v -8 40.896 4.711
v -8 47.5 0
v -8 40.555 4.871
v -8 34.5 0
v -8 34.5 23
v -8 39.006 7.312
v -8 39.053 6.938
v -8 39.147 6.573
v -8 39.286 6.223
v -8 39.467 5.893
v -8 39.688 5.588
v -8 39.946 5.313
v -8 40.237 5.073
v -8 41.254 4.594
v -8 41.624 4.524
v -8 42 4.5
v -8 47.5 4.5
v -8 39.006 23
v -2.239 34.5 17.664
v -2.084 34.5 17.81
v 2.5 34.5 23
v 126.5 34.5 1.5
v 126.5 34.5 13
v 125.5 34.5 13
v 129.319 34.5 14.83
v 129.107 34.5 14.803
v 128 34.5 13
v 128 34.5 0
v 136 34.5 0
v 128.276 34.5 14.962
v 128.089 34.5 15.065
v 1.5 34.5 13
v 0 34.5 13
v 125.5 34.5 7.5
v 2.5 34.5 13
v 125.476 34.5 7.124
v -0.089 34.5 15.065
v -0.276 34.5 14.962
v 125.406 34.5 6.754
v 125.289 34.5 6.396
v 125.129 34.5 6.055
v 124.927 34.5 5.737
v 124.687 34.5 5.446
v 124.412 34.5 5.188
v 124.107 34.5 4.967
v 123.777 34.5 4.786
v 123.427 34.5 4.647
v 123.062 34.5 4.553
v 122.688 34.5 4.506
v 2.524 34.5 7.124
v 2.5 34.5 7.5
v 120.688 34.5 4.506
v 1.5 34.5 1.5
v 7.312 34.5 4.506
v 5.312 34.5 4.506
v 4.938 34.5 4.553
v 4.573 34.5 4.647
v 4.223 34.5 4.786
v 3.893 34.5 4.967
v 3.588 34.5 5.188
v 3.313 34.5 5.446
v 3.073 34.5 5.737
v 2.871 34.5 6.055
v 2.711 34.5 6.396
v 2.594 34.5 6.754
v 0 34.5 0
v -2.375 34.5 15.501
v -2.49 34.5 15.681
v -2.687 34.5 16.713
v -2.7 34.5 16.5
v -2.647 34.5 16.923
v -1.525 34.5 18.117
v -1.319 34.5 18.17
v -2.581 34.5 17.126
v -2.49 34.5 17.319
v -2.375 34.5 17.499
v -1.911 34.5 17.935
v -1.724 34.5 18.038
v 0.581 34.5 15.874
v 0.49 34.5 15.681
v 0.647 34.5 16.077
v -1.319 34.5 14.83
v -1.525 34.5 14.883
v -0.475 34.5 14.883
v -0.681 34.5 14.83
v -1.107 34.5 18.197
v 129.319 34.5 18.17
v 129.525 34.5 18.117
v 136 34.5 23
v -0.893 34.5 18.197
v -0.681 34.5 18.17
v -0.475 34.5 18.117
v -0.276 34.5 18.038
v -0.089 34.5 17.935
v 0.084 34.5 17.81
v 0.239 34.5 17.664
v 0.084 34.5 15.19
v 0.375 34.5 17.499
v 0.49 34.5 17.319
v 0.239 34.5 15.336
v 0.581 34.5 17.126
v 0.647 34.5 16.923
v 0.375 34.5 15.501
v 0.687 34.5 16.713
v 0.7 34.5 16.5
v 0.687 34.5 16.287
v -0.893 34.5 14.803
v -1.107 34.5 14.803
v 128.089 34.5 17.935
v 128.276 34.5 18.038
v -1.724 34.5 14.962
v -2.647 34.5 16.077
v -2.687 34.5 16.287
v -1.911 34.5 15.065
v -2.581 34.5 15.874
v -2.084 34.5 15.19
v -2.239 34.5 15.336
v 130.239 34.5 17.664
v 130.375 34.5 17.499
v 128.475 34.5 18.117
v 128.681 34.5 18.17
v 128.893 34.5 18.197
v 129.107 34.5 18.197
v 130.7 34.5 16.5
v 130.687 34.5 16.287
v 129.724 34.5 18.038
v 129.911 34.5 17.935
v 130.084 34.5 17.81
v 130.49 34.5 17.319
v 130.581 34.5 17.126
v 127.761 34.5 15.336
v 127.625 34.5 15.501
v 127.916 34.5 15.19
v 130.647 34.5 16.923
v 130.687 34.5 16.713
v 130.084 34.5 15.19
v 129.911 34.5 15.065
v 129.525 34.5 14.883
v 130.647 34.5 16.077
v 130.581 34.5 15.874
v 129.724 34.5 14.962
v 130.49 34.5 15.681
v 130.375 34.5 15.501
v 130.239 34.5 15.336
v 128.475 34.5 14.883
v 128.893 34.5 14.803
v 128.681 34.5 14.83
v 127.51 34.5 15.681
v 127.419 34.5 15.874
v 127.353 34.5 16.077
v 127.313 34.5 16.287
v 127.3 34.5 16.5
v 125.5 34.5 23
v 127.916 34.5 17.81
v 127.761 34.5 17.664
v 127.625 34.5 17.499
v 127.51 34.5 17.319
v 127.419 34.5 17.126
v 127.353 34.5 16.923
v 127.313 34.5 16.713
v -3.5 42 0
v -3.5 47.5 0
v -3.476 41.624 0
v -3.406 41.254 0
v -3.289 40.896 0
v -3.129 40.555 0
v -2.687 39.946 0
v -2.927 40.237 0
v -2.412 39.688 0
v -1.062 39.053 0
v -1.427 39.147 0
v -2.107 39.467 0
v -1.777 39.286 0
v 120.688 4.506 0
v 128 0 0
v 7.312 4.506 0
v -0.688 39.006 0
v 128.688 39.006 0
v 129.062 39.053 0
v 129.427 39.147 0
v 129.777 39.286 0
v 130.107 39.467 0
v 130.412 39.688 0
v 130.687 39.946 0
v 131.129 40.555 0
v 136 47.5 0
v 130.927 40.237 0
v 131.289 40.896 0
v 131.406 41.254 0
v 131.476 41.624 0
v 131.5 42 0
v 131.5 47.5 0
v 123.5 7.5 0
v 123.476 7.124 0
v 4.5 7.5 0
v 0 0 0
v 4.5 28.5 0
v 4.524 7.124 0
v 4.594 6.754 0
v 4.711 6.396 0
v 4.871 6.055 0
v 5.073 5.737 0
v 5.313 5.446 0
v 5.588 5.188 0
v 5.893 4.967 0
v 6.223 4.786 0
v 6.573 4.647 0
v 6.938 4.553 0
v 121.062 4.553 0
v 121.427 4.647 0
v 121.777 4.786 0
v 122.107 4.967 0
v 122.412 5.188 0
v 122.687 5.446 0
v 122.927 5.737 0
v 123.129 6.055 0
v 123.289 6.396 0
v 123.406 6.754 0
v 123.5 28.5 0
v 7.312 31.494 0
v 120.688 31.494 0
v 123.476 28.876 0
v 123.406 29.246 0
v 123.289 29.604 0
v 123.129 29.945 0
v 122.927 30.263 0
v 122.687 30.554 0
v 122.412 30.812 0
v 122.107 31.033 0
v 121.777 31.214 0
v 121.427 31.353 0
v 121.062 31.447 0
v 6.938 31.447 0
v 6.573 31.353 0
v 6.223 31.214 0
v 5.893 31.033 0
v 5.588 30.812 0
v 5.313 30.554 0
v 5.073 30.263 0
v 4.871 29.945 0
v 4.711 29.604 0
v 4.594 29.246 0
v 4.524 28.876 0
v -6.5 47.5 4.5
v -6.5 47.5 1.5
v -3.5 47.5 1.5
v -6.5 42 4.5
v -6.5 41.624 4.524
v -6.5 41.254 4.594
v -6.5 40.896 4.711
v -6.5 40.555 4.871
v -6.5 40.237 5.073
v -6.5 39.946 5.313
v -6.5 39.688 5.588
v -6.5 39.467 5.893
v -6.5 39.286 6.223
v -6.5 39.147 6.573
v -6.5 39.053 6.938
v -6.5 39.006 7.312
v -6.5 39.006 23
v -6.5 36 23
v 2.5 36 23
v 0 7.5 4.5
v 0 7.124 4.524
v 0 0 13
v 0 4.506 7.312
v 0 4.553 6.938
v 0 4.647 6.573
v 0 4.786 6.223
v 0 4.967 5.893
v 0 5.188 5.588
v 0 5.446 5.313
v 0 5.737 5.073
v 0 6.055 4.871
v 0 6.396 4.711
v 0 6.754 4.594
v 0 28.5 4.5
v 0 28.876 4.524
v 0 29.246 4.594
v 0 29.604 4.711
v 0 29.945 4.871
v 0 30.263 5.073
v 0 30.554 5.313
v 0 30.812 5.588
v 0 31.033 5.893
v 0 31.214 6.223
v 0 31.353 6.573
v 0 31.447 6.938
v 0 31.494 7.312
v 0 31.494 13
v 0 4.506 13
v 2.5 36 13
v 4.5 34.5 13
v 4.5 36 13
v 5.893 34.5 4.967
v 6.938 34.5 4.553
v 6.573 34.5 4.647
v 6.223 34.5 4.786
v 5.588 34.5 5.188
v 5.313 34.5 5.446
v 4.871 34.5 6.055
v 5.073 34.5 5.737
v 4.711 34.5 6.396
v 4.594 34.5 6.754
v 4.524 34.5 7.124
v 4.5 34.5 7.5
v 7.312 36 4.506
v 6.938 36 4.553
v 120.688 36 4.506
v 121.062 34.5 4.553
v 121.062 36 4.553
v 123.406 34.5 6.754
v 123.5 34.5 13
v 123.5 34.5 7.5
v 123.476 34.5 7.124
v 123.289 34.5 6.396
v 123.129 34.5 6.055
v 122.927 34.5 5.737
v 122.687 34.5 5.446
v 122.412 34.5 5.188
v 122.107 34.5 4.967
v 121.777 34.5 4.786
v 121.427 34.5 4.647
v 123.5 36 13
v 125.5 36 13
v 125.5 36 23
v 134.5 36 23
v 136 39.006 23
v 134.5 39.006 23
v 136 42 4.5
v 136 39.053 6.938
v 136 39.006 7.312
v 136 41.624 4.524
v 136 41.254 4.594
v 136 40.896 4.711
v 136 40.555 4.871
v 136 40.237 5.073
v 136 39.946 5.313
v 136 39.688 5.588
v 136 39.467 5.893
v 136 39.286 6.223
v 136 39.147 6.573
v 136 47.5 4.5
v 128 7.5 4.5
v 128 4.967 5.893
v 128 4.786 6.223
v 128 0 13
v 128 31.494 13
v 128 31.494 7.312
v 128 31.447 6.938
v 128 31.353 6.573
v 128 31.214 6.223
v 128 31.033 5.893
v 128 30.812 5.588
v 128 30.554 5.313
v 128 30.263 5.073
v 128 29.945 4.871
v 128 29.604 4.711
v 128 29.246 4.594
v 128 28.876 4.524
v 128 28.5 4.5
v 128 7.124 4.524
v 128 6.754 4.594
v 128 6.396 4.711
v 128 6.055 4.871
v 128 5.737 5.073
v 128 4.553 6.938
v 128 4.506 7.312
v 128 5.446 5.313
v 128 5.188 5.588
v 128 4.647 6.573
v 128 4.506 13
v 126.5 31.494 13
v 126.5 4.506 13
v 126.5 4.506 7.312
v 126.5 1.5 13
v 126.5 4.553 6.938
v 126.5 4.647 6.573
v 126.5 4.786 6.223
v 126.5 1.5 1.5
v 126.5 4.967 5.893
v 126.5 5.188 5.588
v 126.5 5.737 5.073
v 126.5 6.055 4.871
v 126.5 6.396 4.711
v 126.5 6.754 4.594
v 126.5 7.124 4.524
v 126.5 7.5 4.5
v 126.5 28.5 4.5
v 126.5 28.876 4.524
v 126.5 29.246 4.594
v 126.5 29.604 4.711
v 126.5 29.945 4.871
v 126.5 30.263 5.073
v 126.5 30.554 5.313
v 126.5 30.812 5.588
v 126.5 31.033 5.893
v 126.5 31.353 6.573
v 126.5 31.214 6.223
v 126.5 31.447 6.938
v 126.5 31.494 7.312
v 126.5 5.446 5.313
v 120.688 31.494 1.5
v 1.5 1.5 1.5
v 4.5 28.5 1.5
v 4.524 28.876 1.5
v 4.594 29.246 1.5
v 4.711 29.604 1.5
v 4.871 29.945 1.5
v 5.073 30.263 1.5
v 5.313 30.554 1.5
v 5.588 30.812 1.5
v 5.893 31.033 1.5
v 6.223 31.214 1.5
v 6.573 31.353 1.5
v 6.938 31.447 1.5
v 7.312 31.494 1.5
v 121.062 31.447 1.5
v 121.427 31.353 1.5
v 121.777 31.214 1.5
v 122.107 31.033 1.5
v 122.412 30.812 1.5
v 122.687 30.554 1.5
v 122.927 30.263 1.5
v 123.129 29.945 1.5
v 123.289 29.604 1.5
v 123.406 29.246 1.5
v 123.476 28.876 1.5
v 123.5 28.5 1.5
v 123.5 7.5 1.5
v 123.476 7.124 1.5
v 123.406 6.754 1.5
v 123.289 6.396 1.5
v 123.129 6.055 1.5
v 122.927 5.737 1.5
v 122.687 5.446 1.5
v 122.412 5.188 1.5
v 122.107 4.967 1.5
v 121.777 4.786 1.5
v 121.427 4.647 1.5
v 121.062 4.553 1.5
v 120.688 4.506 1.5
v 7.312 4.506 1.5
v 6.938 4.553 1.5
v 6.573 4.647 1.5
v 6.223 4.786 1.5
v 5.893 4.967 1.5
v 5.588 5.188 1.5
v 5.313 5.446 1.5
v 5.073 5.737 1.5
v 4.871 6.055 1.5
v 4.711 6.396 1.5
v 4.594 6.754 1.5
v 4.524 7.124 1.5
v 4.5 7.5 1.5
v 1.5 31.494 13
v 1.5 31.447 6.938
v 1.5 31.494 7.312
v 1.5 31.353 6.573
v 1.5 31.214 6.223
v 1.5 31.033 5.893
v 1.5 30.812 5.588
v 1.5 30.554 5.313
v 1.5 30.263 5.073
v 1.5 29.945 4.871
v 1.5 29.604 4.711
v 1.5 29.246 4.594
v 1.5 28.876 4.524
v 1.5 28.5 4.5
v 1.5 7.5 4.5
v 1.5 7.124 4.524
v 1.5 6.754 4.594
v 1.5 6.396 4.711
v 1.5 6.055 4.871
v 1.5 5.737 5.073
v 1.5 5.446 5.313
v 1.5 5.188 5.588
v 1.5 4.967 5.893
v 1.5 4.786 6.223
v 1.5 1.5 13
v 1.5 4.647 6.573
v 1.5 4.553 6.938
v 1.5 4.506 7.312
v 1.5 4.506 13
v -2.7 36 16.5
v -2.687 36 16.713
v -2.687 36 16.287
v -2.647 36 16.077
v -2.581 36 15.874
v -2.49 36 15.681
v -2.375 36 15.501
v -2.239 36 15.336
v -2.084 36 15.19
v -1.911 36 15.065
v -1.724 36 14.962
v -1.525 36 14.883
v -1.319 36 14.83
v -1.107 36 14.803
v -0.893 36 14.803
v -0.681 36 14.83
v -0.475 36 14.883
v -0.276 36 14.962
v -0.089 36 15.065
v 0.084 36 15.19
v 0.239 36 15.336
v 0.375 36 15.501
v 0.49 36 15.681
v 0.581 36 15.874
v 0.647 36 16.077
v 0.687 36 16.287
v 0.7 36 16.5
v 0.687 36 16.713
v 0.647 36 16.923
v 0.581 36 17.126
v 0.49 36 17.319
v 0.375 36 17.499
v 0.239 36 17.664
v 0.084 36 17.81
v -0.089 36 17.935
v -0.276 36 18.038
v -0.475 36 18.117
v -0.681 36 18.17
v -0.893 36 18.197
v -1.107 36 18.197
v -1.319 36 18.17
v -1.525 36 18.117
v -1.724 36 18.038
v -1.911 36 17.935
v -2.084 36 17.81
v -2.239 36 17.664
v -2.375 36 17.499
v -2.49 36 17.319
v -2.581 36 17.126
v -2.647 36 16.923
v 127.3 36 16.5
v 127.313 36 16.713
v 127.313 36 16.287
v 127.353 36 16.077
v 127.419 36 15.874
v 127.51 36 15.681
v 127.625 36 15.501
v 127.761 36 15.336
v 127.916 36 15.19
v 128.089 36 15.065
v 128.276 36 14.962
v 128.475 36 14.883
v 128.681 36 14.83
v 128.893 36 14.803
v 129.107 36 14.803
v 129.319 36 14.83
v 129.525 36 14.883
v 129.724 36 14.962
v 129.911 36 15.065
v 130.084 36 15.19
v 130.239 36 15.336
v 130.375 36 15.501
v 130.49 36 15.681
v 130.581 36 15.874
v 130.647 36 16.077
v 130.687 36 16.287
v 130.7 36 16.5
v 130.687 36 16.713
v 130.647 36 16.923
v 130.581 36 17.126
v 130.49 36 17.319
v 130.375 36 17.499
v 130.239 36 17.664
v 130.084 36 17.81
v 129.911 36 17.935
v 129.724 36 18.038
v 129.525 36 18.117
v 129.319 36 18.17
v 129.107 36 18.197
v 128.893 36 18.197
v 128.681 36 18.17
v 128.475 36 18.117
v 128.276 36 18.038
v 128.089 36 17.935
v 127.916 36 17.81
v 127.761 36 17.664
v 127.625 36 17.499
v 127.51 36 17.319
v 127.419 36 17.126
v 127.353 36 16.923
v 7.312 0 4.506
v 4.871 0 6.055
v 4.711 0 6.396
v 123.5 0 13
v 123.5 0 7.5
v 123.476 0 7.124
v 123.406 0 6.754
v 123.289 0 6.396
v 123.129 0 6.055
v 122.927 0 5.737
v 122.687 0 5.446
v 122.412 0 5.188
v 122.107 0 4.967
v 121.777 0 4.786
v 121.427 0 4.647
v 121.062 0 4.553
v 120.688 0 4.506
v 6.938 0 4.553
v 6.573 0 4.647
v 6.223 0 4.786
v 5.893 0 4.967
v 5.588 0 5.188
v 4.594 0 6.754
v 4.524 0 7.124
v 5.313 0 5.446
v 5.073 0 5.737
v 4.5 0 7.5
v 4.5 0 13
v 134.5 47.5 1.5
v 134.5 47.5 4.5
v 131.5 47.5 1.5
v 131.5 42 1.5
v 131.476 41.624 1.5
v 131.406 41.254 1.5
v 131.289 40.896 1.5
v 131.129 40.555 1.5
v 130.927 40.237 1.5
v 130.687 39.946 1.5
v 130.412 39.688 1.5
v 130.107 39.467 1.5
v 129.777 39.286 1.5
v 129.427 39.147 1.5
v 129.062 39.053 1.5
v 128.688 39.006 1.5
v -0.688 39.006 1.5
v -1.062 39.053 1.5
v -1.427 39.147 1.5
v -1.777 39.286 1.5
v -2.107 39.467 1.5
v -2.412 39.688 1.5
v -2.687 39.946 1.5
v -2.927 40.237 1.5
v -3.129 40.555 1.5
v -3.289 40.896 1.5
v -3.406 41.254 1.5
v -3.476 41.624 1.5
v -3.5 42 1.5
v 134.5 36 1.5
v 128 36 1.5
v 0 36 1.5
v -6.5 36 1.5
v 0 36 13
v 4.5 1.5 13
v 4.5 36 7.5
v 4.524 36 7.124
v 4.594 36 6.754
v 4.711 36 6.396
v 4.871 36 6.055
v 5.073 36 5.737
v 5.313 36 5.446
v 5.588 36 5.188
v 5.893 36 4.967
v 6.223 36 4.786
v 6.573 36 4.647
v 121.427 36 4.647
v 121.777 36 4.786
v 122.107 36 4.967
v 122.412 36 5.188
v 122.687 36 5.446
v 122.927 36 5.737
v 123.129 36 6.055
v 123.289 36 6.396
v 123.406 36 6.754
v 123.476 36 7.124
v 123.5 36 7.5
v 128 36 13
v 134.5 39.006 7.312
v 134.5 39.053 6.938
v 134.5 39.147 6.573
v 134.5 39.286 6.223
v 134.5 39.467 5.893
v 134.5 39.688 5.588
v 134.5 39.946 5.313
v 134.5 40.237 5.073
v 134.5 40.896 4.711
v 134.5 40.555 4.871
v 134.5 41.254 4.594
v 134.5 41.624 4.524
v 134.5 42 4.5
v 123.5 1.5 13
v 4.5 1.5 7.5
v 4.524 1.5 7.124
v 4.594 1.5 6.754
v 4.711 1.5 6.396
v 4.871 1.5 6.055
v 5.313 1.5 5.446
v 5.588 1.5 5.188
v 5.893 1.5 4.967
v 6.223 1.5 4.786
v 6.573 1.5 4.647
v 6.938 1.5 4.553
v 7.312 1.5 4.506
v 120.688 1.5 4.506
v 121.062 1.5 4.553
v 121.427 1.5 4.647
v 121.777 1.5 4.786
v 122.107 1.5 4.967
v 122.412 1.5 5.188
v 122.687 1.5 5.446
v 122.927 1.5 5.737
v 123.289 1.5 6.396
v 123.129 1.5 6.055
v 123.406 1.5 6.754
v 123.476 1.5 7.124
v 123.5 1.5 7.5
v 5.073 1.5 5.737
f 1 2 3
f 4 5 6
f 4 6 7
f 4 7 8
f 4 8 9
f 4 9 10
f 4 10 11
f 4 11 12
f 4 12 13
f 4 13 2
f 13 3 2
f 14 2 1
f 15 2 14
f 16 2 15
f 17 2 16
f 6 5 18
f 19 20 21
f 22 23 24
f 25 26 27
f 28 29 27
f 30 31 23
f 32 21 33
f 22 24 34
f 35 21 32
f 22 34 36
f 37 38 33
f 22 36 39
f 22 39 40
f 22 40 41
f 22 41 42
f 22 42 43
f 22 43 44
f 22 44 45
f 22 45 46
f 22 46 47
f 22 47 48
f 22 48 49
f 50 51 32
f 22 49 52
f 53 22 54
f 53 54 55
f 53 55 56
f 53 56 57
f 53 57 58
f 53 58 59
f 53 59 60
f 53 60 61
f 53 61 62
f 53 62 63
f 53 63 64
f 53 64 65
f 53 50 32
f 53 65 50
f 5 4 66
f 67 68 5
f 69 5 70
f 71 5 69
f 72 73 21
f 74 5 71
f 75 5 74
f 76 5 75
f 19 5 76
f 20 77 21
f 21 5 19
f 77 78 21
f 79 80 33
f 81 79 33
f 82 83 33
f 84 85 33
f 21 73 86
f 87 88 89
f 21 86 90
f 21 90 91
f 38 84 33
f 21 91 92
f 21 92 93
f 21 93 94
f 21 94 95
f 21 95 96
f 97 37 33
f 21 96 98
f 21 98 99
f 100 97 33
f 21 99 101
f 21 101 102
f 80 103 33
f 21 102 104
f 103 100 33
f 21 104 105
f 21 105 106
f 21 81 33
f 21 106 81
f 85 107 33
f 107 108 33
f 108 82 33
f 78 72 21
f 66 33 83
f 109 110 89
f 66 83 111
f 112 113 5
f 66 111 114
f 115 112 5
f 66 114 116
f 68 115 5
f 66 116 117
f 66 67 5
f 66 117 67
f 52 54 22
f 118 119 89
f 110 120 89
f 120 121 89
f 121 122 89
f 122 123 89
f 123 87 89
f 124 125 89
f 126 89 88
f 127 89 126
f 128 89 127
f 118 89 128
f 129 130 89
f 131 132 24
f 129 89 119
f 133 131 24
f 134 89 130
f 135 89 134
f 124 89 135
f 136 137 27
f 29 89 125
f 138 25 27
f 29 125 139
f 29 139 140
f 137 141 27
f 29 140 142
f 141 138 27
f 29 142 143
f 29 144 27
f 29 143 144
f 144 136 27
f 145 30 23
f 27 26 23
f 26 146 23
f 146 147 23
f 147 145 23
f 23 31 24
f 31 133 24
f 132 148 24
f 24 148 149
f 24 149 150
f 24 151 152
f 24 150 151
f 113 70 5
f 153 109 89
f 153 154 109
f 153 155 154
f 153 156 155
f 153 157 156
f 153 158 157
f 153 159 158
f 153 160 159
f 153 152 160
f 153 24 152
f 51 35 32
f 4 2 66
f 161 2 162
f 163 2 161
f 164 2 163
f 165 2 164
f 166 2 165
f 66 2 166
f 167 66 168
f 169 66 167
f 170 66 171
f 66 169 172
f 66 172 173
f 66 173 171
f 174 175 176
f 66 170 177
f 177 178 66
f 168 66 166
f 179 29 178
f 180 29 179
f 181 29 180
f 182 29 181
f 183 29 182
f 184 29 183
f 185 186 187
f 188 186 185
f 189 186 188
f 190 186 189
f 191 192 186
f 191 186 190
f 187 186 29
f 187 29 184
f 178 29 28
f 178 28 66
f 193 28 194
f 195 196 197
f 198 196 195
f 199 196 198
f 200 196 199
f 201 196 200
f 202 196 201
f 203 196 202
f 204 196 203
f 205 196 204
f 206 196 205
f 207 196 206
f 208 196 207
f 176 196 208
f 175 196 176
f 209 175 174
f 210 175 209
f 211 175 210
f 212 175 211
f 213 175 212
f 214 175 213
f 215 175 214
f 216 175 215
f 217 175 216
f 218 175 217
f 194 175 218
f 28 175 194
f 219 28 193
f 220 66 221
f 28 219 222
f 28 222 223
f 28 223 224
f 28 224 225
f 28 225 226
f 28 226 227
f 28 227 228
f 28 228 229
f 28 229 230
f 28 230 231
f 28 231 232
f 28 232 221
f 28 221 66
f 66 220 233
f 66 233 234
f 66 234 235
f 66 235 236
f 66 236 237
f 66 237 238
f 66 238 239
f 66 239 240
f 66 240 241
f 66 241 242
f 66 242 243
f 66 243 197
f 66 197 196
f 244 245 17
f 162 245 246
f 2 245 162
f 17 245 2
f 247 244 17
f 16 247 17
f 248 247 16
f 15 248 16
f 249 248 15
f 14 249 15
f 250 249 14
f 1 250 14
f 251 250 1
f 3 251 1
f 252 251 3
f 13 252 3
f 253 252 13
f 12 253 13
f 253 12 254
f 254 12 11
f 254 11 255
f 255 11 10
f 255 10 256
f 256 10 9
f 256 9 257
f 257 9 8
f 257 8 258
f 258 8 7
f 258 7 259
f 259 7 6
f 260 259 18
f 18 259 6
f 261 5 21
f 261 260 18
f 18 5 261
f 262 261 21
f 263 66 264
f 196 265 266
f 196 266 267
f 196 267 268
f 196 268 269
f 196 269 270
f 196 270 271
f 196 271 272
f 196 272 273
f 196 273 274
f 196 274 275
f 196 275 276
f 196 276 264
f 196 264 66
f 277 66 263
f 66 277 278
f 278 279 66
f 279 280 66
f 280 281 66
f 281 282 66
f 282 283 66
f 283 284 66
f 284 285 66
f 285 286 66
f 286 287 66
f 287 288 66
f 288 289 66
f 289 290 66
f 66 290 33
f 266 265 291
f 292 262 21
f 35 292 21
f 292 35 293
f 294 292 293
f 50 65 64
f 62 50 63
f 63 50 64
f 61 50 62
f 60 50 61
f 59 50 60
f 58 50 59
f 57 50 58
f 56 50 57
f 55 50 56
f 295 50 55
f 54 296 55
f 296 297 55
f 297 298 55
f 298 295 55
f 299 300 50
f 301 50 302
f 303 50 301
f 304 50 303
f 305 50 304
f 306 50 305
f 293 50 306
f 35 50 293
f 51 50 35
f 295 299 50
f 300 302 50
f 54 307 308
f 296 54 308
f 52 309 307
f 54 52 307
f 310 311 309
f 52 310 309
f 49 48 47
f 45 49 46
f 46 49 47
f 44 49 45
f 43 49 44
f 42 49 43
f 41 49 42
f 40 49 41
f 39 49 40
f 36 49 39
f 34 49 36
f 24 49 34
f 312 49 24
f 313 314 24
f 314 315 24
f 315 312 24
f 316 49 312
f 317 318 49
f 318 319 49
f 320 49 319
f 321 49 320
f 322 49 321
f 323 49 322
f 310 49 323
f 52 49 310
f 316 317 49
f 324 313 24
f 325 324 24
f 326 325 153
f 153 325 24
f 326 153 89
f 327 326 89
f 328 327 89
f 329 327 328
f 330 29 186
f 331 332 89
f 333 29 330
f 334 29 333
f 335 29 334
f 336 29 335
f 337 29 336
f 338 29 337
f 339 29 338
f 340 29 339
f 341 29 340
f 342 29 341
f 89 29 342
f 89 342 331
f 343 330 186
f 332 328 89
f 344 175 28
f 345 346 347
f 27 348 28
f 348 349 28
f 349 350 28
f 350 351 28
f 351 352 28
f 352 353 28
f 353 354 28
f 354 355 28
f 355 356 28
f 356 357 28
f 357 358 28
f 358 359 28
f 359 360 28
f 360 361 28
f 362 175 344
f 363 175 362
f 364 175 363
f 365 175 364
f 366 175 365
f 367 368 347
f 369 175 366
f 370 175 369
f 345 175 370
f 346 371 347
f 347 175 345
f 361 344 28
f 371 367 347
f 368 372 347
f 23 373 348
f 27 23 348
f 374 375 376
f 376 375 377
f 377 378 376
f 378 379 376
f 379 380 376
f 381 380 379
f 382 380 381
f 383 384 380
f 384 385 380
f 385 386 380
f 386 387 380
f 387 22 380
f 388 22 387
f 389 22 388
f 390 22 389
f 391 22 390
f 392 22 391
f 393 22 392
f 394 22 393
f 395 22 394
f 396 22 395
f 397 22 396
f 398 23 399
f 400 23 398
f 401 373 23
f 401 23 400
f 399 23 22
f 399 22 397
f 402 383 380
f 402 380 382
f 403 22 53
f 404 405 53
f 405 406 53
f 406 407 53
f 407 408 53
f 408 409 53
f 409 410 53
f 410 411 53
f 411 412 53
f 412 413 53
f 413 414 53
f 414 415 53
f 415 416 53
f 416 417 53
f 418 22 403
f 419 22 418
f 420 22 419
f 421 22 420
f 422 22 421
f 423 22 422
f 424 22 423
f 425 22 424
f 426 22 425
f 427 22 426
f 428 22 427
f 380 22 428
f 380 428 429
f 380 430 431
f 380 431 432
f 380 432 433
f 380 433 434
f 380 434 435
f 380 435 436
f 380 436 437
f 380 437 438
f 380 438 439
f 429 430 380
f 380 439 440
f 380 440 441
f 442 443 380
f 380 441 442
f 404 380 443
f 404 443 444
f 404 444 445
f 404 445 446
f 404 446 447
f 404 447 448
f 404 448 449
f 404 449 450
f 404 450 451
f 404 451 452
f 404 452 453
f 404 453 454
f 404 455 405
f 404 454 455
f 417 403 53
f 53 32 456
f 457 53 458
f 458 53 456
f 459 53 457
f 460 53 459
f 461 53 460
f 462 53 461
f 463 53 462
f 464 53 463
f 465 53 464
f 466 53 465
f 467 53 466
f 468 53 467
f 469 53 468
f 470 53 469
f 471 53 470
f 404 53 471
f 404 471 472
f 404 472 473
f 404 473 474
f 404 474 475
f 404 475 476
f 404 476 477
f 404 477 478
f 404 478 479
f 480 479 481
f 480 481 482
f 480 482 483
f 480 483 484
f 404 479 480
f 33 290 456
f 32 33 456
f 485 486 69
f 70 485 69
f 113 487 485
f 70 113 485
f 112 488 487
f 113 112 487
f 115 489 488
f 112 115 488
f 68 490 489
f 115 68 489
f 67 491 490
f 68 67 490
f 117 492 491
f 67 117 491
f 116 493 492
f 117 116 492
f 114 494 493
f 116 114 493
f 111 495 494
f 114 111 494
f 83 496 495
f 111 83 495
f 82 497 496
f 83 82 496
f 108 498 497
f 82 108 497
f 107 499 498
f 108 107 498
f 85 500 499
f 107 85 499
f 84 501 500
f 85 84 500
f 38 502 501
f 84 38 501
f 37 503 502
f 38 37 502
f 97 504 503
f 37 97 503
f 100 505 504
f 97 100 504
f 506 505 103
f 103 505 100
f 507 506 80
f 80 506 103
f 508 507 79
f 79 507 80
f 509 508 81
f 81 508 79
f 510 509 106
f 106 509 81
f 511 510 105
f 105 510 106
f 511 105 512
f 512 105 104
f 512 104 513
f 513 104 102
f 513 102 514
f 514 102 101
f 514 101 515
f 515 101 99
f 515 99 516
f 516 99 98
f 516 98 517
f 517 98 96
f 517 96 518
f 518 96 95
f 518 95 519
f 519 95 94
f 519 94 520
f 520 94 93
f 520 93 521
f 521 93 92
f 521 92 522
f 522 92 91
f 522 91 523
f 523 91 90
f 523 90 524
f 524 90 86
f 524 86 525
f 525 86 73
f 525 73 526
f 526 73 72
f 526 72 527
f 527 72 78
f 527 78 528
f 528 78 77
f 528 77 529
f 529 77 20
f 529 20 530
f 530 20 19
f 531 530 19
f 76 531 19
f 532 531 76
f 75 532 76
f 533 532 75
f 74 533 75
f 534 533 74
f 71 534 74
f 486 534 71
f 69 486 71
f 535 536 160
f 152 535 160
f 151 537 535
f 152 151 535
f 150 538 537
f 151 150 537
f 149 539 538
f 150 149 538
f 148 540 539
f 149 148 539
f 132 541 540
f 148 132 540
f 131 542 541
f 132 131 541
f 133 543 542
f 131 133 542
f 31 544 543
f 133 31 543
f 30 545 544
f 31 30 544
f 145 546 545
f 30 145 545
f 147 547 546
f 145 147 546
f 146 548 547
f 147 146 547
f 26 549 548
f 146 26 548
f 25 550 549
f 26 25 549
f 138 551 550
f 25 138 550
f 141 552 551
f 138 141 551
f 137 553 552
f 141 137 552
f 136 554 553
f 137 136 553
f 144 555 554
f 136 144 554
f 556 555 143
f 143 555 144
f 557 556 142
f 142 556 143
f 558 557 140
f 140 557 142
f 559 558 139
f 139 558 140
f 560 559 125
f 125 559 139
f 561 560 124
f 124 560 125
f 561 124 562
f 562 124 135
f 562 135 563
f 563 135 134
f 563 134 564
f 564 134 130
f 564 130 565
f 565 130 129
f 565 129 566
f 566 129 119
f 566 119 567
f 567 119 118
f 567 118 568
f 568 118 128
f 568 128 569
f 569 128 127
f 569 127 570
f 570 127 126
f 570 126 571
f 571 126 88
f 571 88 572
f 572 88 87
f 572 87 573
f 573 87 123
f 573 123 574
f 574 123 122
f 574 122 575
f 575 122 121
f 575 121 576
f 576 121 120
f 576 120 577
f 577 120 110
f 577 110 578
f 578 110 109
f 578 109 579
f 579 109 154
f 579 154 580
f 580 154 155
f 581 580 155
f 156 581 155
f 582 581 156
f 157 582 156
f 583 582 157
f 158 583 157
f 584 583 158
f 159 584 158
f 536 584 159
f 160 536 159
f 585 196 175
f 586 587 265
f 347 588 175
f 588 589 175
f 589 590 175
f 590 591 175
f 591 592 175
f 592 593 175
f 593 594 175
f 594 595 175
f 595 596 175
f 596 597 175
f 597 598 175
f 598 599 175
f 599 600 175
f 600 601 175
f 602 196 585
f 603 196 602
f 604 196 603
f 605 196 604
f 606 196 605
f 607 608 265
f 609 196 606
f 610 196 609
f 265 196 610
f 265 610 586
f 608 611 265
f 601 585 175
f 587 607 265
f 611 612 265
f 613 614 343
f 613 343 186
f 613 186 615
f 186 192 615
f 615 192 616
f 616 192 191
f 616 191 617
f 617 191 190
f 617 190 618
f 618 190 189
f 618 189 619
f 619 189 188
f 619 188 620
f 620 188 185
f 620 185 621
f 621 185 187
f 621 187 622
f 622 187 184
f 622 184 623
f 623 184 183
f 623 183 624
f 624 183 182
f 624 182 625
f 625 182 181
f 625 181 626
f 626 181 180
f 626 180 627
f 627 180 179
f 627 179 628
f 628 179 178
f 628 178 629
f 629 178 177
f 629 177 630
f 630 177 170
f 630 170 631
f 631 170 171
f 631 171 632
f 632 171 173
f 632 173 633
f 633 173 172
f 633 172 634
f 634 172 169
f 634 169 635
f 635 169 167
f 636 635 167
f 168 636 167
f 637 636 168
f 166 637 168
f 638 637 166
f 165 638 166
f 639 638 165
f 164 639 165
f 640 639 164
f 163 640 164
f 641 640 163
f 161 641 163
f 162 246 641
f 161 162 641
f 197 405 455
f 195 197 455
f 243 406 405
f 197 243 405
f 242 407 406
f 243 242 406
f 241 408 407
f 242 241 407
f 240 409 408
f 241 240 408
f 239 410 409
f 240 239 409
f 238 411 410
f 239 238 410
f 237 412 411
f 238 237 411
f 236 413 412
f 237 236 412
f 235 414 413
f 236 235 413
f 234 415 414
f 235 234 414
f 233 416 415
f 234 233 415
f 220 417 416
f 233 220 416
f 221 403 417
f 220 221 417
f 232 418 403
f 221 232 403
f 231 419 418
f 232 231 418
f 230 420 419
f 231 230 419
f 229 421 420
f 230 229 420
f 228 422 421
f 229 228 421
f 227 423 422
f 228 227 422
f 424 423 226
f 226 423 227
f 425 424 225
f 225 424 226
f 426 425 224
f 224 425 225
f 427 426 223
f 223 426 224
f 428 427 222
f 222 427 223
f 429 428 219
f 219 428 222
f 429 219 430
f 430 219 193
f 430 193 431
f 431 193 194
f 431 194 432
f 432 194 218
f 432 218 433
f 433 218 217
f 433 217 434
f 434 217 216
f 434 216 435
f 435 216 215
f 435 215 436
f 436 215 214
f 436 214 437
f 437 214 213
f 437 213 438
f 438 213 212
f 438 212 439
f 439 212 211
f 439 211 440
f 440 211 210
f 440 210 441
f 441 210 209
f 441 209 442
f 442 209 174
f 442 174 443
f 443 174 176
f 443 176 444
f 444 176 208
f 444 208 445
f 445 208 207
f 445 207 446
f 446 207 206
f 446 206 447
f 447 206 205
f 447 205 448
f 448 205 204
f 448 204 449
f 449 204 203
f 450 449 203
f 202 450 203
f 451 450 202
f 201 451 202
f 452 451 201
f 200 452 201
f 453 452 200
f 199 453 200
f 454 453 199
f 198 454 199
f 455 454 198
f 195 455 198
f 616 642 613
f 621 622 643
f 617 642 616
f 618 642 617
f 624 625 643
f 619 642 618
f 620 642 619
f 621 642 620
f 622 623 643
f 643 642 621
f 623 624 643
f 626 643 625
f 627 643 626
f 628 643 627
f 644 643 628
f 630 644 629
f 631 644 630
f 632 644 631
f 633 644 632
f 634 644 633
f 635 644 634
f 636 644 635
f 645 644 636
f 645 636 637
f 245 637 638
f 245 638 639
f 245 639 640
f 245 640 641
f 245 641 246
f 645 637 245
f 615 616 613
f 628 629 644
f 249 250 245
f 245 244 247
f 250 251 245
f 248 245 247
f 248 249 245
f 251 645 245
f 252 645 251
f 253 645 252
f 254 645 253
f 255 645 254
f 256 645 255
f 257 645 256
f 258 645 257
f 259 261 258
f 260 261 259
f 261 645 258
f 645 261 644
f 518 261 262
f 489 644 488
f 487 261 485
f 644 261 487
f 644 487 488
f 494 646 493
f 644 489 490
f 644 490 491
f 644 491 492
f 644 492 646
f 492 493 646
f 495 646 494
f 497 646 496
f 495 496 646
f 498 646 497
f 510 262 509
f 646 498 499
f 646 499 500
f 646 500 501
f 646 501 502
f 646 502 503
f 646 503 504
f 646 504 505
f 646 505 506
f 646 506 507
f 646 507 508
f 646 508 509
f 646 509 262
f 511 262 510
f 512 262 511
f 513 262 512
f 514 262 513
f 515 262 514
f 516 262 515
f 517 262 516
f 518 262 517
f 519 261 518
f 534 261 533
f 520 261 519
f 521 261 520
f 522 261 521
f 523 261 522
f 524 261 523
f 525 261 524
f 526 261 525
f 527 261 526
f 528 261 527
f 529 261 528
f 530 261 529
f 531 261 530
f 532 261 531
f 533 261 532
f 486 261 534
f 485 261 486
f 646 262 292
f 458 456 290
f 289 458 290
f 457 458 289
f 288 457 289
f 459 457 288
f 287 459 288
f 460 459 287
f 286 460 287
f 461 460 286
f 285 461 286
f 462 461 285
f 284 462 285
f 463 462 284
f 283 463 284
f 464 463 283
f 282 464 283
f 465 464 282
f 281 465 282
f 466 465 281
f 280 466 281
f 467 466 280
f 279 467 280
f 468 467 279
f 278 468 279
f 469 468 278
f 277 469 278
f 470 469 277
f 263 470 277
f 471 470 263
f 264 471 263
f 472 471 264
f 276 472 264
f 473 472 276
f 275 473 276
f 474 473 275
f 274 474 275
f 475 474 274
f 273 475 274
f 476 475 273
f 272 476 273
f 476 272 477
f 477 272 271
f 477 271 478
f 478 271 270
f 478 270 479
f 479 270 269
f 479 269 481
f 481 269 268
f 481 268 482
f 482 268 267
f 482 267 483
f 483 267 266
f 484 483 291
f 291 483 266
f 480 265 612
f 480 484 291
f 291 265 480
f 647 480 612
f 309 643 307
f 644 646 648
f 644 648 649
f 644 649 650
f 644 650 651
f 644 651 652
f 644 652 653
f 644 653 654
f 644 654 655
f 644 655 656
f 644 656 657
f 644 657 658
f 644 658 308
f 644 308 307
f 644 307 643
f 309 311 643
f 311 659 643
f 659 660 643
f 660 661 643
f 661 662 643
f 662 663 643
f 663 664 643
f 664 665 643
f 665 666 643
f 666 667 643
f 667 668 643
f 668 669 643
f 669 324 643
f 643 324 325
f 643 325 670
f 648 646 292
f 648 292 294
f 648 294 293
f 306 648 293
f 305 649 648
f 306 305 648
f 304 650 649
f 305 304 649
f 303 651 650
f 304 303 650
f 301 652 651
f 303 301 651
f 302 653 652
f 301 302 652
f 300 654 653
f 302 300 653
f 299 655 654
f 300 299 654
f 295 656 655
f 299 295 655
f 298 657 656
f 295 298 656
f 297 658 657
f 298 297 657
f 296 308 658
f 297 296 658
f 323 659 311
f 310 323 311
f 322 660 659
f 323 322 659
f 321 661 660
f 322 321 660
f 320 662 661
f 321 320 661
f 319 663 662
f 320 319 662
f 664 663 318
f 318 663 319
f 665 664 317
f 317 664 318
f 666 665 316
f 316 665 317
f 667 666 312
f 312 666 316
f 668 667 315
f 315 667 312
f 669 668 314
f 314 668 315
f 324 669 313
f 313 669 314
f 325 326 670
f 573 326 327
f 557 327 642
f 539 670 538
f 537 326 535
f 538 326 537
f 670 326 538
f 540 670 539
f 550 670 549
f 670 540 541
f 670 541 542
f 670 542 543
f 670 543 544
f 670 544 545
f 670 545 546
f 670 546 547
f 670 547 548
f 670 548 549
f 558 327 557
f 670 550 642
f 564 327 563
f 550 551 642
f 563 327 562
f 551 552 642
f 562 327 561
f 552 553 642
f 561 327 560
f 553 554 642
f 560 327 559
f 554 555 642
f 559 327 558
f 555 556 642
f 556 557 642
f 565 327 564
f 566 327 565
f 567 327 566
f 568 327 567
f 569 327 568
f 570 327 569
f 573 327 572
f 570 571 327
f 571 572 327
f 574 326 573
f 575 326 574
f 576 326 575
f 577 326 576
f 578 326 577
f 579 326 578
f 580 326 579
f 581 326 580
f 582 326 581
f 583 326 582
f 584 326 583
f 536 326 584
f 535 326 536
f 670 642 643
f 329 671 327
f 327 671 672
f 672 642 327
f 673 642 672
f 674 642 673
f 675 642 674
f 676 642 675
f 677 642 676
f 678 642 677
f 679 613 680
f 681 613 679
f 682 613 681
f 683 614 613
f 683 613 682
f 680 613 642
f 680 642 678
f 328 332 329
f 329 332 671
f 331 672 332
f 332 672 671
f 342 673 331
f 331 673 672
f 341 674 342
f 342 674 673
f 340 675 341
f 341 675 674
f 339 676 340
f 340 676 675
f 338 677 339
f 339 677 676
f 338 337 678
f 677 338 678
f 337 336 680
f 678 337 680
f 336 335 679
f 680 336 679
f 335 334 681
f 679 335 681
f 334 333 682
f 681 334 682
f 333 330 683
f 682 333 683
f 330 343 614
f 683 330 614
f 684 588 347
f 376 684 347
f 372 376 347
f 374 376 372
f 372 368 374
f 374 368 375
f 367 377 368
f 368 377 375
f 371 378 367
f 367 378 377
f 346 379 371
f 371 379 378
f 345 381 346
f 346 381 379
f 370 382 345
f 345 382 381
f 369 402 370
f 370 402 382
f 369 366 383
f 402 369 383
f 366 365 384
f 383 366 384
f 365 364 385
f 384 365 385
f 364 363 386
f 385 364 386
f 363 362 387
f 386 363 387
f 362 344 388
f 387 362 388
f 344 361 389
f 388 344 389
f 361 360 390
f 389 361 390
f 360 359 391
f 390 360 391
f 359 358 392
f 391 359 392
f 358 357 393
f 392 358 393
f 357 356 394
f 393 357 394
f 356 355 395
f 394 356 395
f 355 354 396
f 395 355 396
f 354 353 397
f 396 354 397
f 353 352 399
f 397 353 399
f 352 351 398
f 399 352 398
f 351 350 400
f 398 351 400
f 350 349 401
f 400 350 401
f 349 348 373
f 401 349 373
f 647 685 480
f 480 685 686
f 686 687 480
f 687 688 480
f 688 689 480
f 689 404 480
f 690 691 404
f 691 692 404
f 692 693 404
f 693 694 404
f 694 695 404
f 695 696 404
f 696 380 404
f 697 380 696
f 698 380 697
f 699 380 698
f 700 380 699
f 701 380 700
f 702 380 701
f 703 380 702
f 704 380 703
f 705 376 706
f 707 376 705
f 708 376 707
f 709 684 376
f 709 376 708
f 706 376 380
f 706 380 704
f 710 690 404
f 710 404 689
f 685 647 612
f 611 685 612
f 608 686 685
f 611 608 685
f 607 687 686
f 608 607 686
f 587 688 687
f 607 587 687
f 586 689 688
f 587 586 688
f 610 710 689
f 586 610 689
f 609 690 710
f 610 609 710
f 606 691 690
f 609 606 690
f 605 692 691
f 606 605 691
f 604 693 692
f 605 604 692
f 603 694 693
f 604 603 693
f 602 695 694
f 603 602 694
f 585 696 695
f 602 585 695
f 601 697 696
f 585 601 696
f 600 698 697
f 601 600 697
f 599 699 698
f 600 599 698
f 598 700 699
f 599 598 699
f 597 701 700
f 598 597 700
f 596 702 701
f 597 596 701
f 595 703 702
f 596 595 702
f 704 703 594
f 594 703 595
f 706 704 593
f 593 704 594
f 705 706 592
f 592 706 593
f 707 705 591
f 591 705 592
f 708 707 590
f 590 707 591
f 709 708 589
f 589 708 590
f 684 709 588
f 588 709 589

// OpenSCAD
Dl = 125;
Db = 33;
Dh = 10;

Nl = 141;
Nb = 20;
Nh = 20;
NWr = 3;
NWb = 9;

d = 1.5;

Wb = 3;
Wr = 3;

$fn = 50;

module frame(l, b, h, Wb, Wr, d)
{
	difference(){
		cube([l+2*d,b+2*d,h+2*d]);
		translate([d,d,d])cube([l,b,h+4*d]);
	
		rotate([90,0,0])
		translate([Wb+Wr+d,Wb+Wr+d,-4*d-b]){
			minkowski(){
				cube([l-2*(Wb+Wr),max(l,b,h)+4*d+2*Wr,l+8*d]);
				cylinder(r=Wr,h=1);
			}
		}
	
		rotate([0,-90,0])
		translate([Wb+Wr+d,Wb+Wr+d,-4*d-l]){
			minkowski(){
				cube([max(l,b,h)+4*d+2*Wr,b-2*(Wb+Wr),l+8*d]);
				cylinder(r=Wr,h=1);
			}
		}
	
		translate([Wb+Wr+d,Wb+Wr+d,-4*d]){
			minkowski(){
				cube([l-2*(Wb+Wr),b-2*(Wb+Wr),h+8*d]);
				cylinder(r=Wr,h=1);
			}
		}
	}
}

module frame2(l, b, h, Wl, Wb, Wr, d, rl, xl, yl)
{
	difference(){
		cube([l+2*d,b+2*d,h+2*d]);
		translate([d,d,d])cube([l,b,h+4*d]);
	
		rotate([90,0,0]){
			translate([Wl+Wr+d,Wb+Wr+d,-4*d-b]){
				minkowski(){
					cube([l-2*(Wl+Wr),max(l,b,h)+4*d+2*Wr,l+8*d]);
					cylinder(r=Wr,h=1);
				}
			}
			translate([xl,yl,-2*d])cylinder(r=rl, h=3*d);
			translate([l+2*d-xl,yl,-2*d])cylinder(r=rl, h=3*d);
		}
		rotate([0,-90,0]){
			translate([Wb+Wr+d,Wb+Wr+d,-4*d-l]){
				minkowski(){
					cube([max(l,b,h)+4*d+2*Wr,b-2*(Wb+Wr),l+8*d]);
					cylinder(r=Wr,h=1);
				}
			}
		}
		translate([Wb+Wr+d,Wb+Wr+d,-4*d]){
			minkowski(){
				cube([l-2*(Wb+Wr),b-2*(Wb+Wr),h+8*d]);
				cylinder(r=Wr,h=1);
			}
		}
	}
}

frame(Dl, Db, Dh, Wb, Wr, d);
difference(){
	translate([(Dl-Nl)/2,Db+d,0]) frame2(Nl, Nb, Nh, NWb, Wb, NWr, d, 1.7,5.5+d,15+d);
	translate([(Dl-Nl)/2-d,+Db+Nb/2+3*d,-d]) cube([Nl+4*d,Nb+2*d,Nh+4*d]);
}
